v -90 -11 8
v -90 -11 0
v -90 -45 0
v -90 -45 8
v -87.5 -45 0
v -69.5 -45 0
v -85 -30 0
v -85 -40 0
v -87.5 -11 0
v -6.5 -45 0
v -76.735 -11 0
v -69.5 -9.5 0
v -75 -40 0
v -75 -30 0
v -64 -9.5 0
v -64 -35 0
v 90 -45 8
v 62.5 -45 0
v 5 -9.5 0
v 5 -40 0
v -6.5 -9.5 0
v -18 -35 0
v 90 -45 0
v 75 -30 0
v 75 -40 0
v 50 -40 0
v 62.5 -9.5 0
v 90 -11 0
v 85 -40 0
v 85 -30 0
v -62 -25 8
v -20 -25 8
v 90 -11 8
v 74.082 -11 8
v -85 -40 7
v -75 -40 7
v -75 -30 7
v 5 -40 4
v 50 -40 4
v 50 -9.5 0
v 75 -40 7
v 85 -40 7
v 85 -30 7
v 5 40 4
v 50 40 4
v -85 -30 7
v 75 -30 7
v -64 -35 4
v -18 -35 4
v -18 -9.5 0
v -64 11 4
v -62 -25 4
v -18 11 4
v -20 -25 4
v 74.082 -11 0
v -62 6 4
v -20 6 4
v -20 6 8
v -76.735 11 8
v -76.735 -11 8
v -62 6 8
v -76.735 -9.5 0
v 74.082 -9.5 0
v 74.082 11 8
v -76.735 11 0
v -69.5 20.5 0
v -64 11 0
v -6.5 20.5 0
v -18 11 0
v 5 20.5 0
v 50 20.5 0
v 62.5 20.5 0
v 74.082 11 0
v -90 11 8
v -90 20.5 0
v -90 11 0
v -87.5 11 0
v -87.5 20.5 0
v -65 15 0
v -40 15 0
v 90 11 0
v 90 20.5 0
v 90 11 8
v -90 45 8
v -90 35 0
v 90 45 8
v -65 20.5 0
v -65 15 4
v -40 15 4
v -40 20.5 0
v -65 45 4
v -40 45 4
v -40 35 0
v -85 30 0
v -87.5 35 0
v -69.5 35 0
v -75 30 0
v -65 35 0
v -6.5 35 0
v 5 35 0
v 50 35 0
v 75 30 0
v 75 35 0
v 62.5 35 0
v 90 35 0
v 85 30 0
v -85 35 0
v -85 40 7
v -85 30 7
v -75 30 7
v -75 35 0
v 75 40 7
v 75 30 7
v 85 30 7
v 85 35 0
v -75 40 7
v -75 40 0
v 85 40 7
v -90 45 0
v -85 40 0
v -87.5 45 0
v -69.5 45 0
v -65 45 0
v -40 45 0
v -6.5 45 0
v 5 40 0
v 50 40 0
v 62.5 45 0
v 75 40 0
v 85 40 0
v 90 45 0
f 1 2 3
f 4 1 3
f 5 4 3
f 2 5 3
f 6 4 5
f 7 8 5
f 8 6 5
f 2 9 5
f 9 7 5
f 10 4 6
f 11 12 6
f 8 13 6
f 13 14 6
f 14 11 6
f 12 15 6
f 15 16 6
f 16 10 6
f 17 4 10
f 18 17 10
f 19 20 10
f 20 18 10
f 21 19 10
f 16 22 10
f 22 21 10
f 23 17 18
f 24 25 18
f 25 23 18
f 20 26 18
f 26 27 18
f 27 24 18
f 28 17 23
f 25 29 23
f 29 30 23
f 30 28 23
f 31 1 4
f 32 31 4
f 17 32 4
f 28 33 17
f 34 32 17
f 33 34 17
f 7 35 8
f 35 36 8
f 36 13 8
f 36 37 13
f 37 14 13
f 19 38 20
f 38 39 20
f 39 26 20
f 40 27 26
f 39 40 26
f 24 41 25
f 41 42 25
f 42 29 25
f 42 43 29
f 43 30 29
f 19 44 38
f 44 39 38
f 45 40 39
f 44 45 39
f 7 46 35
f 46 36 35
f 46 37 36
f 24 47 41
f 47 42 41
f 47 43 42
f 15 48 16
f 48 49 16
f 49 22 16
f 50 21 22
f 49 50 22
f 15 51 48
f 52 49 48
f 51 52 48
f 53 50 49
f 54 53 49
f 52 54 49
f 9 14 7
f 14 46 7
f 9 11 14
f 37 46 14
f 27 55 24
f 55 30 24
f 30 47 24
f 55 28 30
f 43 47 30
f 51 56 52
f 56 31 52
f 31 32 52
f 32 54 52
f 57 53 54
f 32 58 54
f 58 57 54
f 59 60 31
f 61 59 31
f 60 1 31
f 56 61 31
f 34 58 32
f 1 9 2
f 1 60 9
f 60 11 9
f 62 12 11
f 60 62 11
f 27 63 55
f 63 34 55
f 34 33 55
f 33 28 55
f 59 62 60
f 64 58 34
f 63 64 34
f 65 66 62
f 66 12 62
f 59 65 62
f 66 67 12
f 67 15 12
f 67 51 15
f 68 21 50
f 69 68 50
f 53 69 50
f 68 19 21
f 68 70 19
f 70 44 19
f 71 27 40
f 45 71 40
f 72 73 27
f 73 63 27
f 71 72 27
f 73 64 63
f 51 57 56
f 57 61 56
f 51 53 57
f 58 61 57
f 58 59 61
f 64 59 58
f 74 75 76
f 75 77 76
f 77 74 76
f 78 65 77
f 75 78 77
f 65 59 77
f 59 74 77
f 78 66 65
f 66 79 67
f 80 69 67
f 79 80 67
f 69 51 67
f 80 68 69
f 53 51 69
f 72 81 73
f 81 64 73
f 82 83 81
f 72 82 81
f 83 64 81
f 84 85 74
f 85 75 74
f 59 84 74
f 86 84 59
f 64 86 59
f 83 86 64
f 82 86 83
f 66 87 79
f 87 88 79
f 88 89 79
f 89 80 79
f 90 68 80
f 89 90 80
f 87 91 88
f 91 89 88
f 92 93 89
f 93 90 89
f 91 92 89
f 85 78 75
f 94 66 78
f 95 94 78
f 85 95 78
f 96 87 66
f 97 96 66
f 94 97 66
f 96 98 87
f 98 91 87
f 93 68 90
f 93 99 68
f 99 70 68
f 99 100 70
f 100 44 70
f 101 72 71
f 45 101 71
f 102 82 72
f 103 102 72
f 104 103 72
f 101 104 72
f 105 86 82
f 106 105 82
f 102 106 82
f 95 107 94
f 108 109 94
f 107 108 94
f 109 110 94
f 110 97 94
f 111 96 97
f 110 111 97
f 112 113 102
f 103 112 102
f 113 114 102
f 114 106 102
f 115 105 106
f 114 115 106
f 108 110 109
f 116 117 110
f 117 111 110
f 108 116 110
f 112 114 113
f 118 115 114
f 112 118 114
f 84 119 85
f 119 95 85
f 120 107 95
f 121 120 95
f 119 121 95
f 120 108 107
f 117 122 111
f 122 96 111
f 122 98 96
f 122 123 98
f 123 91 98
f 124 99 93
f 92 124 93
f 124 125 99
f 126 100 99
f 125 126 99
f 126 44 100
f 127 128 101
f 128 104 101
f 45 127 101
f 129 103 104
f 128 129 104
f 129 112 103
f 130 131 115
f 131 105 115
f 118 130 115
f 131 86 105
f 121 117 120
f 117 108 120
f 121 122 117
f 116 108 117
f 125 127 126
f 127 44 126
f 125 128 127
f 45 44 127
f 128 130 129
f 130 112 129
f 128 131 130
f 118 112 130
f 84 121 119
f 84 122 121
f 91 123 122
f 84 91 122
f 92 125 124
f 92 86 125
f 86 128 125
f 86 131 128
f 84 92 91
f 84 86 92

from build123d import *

# Parameters (mm, degrees)
SKETCH1_W                = 180
SKETCH1_H                = 90
BOSS_EXTRUDE1_DEPTH      = 8
SKETCH3_W                = 10
SKETCH3_H                = 10
CUT_EXTRUDE1_DEPTH       = 7
SKETCH4_W                = 25
SKETCH4_H                = 30
SKETCH4_W_2              = 45
SKETCH4_H_2              = 80
SKETCH4_W_3              = 46
SKETCH4_H_3              = 46
CUT_EXTRUDE2_DEPTH       = 4
SKETCH5_W                = 15.917599426
SKETCH5_H                = 22
SKETCH5_W_2              = 13.264666189
CUT_EXTRUDE3_DEPTH       = 101.940576578
CUT_EXTRUDE12_DEPTH      = 101.940576578
CUT_EXTRUDE12_DEPTH_BACK = 101.940576578
SKETCH6_W                = 42
SKETCH6_H                = 31


with BuildPart() as part:
    # Sketch1 → Boss-Extrude1 (new body)
    with BuildSketch(Plane.XY):
        Rectangle(SKETCH1_W, SKETCH1_H)
    extrude(amount=BOSS_EXTRUDE1_DEPTH)

    # Sketch3 → Cut-Extrude1 (cut)
    with BuildSketch(Plane(origin=(0, 0, 0), x_dir=(-1, 0, 0), z_dir=(0, 0, -1))):
        with Locations((-80, -35)):
            Rectangle(SKETCH3_W, SKETCH3_H)
        with Locations((-80, 35)):
            Rectangle(SKETCH3_W, SKETCH3_H)
        with Locations((80, 35)):
            Rectangle(SKETCH3_W, SKETCH3_H)
        with Locations((80, -35)):
            Rectangle(SKETCH3_W, SKETCH3_H)
    extrude(amount=-CUT_EXTRUDE1_DEPTH, mode=Mode.SUBTRACT)

    # Sketch4 → Cut-Extrude2 (cut)
    with BuildSketch(Plane(origin=(0, 0, 0), x_dir=(-1, 0, 0), z_dir=(0, 0, -1))):
        with Locations((52.5, 30)):
            Rectangle(SKETCH4_W, SKETCH4_H)
        with Locations((-27.5, 0)):
            Rectangle(SKETCH4_W_2, SKETCH4_H_2)
        with Locations((41, -12)):
            Rectangle(SKETCH4_W_3, SKETCH4_H_3)
    extrude(amount=-CUT_EXTRUDE2_DEPTH, mode=Mode.SUBTRACT)

    # Sketch5 → Cut-Extrude3 (cut, through all)
    with BuildSketch(Plane(origin=(0, 0, 0), x_dir=(-1, 0, 0), z_dir=(0, 0, -1))):
        with Locations((-82.041200287, 0)):
            Rectangle(SKETCH5_W, SKETCH5_H)
        with Locations((83.367666906, 0)):
            Rectangle(SKETCH5_W_2, SKETCH5_H)
    extrude(amount=-CUT_EXTRUDE3_DEPTH, mode=Mode.SUBTRACT)

    # Sketch6 → Cut-Extrude12 (cut, two sides: drawn at the far end of the back side and taken through both)
    with BuildSketch(Plane(origin=(0, 0, 0), x_dir=(-1, 0, 0), z_dir=(0, 0, -1)).offset(-CUT_EXTRUDE12_DEPTH_BACK)):
        with Locations((41, -9.5)):
            Rectangle(SKETCH6_W, SKETCH6_H)
    extrude(amount=CUT_EXTRUDE12_DEPTH + CUT_EXTRUDE12_DEPTH_BACK, mode=Mode.SUBTRACT)


solid = part.part
